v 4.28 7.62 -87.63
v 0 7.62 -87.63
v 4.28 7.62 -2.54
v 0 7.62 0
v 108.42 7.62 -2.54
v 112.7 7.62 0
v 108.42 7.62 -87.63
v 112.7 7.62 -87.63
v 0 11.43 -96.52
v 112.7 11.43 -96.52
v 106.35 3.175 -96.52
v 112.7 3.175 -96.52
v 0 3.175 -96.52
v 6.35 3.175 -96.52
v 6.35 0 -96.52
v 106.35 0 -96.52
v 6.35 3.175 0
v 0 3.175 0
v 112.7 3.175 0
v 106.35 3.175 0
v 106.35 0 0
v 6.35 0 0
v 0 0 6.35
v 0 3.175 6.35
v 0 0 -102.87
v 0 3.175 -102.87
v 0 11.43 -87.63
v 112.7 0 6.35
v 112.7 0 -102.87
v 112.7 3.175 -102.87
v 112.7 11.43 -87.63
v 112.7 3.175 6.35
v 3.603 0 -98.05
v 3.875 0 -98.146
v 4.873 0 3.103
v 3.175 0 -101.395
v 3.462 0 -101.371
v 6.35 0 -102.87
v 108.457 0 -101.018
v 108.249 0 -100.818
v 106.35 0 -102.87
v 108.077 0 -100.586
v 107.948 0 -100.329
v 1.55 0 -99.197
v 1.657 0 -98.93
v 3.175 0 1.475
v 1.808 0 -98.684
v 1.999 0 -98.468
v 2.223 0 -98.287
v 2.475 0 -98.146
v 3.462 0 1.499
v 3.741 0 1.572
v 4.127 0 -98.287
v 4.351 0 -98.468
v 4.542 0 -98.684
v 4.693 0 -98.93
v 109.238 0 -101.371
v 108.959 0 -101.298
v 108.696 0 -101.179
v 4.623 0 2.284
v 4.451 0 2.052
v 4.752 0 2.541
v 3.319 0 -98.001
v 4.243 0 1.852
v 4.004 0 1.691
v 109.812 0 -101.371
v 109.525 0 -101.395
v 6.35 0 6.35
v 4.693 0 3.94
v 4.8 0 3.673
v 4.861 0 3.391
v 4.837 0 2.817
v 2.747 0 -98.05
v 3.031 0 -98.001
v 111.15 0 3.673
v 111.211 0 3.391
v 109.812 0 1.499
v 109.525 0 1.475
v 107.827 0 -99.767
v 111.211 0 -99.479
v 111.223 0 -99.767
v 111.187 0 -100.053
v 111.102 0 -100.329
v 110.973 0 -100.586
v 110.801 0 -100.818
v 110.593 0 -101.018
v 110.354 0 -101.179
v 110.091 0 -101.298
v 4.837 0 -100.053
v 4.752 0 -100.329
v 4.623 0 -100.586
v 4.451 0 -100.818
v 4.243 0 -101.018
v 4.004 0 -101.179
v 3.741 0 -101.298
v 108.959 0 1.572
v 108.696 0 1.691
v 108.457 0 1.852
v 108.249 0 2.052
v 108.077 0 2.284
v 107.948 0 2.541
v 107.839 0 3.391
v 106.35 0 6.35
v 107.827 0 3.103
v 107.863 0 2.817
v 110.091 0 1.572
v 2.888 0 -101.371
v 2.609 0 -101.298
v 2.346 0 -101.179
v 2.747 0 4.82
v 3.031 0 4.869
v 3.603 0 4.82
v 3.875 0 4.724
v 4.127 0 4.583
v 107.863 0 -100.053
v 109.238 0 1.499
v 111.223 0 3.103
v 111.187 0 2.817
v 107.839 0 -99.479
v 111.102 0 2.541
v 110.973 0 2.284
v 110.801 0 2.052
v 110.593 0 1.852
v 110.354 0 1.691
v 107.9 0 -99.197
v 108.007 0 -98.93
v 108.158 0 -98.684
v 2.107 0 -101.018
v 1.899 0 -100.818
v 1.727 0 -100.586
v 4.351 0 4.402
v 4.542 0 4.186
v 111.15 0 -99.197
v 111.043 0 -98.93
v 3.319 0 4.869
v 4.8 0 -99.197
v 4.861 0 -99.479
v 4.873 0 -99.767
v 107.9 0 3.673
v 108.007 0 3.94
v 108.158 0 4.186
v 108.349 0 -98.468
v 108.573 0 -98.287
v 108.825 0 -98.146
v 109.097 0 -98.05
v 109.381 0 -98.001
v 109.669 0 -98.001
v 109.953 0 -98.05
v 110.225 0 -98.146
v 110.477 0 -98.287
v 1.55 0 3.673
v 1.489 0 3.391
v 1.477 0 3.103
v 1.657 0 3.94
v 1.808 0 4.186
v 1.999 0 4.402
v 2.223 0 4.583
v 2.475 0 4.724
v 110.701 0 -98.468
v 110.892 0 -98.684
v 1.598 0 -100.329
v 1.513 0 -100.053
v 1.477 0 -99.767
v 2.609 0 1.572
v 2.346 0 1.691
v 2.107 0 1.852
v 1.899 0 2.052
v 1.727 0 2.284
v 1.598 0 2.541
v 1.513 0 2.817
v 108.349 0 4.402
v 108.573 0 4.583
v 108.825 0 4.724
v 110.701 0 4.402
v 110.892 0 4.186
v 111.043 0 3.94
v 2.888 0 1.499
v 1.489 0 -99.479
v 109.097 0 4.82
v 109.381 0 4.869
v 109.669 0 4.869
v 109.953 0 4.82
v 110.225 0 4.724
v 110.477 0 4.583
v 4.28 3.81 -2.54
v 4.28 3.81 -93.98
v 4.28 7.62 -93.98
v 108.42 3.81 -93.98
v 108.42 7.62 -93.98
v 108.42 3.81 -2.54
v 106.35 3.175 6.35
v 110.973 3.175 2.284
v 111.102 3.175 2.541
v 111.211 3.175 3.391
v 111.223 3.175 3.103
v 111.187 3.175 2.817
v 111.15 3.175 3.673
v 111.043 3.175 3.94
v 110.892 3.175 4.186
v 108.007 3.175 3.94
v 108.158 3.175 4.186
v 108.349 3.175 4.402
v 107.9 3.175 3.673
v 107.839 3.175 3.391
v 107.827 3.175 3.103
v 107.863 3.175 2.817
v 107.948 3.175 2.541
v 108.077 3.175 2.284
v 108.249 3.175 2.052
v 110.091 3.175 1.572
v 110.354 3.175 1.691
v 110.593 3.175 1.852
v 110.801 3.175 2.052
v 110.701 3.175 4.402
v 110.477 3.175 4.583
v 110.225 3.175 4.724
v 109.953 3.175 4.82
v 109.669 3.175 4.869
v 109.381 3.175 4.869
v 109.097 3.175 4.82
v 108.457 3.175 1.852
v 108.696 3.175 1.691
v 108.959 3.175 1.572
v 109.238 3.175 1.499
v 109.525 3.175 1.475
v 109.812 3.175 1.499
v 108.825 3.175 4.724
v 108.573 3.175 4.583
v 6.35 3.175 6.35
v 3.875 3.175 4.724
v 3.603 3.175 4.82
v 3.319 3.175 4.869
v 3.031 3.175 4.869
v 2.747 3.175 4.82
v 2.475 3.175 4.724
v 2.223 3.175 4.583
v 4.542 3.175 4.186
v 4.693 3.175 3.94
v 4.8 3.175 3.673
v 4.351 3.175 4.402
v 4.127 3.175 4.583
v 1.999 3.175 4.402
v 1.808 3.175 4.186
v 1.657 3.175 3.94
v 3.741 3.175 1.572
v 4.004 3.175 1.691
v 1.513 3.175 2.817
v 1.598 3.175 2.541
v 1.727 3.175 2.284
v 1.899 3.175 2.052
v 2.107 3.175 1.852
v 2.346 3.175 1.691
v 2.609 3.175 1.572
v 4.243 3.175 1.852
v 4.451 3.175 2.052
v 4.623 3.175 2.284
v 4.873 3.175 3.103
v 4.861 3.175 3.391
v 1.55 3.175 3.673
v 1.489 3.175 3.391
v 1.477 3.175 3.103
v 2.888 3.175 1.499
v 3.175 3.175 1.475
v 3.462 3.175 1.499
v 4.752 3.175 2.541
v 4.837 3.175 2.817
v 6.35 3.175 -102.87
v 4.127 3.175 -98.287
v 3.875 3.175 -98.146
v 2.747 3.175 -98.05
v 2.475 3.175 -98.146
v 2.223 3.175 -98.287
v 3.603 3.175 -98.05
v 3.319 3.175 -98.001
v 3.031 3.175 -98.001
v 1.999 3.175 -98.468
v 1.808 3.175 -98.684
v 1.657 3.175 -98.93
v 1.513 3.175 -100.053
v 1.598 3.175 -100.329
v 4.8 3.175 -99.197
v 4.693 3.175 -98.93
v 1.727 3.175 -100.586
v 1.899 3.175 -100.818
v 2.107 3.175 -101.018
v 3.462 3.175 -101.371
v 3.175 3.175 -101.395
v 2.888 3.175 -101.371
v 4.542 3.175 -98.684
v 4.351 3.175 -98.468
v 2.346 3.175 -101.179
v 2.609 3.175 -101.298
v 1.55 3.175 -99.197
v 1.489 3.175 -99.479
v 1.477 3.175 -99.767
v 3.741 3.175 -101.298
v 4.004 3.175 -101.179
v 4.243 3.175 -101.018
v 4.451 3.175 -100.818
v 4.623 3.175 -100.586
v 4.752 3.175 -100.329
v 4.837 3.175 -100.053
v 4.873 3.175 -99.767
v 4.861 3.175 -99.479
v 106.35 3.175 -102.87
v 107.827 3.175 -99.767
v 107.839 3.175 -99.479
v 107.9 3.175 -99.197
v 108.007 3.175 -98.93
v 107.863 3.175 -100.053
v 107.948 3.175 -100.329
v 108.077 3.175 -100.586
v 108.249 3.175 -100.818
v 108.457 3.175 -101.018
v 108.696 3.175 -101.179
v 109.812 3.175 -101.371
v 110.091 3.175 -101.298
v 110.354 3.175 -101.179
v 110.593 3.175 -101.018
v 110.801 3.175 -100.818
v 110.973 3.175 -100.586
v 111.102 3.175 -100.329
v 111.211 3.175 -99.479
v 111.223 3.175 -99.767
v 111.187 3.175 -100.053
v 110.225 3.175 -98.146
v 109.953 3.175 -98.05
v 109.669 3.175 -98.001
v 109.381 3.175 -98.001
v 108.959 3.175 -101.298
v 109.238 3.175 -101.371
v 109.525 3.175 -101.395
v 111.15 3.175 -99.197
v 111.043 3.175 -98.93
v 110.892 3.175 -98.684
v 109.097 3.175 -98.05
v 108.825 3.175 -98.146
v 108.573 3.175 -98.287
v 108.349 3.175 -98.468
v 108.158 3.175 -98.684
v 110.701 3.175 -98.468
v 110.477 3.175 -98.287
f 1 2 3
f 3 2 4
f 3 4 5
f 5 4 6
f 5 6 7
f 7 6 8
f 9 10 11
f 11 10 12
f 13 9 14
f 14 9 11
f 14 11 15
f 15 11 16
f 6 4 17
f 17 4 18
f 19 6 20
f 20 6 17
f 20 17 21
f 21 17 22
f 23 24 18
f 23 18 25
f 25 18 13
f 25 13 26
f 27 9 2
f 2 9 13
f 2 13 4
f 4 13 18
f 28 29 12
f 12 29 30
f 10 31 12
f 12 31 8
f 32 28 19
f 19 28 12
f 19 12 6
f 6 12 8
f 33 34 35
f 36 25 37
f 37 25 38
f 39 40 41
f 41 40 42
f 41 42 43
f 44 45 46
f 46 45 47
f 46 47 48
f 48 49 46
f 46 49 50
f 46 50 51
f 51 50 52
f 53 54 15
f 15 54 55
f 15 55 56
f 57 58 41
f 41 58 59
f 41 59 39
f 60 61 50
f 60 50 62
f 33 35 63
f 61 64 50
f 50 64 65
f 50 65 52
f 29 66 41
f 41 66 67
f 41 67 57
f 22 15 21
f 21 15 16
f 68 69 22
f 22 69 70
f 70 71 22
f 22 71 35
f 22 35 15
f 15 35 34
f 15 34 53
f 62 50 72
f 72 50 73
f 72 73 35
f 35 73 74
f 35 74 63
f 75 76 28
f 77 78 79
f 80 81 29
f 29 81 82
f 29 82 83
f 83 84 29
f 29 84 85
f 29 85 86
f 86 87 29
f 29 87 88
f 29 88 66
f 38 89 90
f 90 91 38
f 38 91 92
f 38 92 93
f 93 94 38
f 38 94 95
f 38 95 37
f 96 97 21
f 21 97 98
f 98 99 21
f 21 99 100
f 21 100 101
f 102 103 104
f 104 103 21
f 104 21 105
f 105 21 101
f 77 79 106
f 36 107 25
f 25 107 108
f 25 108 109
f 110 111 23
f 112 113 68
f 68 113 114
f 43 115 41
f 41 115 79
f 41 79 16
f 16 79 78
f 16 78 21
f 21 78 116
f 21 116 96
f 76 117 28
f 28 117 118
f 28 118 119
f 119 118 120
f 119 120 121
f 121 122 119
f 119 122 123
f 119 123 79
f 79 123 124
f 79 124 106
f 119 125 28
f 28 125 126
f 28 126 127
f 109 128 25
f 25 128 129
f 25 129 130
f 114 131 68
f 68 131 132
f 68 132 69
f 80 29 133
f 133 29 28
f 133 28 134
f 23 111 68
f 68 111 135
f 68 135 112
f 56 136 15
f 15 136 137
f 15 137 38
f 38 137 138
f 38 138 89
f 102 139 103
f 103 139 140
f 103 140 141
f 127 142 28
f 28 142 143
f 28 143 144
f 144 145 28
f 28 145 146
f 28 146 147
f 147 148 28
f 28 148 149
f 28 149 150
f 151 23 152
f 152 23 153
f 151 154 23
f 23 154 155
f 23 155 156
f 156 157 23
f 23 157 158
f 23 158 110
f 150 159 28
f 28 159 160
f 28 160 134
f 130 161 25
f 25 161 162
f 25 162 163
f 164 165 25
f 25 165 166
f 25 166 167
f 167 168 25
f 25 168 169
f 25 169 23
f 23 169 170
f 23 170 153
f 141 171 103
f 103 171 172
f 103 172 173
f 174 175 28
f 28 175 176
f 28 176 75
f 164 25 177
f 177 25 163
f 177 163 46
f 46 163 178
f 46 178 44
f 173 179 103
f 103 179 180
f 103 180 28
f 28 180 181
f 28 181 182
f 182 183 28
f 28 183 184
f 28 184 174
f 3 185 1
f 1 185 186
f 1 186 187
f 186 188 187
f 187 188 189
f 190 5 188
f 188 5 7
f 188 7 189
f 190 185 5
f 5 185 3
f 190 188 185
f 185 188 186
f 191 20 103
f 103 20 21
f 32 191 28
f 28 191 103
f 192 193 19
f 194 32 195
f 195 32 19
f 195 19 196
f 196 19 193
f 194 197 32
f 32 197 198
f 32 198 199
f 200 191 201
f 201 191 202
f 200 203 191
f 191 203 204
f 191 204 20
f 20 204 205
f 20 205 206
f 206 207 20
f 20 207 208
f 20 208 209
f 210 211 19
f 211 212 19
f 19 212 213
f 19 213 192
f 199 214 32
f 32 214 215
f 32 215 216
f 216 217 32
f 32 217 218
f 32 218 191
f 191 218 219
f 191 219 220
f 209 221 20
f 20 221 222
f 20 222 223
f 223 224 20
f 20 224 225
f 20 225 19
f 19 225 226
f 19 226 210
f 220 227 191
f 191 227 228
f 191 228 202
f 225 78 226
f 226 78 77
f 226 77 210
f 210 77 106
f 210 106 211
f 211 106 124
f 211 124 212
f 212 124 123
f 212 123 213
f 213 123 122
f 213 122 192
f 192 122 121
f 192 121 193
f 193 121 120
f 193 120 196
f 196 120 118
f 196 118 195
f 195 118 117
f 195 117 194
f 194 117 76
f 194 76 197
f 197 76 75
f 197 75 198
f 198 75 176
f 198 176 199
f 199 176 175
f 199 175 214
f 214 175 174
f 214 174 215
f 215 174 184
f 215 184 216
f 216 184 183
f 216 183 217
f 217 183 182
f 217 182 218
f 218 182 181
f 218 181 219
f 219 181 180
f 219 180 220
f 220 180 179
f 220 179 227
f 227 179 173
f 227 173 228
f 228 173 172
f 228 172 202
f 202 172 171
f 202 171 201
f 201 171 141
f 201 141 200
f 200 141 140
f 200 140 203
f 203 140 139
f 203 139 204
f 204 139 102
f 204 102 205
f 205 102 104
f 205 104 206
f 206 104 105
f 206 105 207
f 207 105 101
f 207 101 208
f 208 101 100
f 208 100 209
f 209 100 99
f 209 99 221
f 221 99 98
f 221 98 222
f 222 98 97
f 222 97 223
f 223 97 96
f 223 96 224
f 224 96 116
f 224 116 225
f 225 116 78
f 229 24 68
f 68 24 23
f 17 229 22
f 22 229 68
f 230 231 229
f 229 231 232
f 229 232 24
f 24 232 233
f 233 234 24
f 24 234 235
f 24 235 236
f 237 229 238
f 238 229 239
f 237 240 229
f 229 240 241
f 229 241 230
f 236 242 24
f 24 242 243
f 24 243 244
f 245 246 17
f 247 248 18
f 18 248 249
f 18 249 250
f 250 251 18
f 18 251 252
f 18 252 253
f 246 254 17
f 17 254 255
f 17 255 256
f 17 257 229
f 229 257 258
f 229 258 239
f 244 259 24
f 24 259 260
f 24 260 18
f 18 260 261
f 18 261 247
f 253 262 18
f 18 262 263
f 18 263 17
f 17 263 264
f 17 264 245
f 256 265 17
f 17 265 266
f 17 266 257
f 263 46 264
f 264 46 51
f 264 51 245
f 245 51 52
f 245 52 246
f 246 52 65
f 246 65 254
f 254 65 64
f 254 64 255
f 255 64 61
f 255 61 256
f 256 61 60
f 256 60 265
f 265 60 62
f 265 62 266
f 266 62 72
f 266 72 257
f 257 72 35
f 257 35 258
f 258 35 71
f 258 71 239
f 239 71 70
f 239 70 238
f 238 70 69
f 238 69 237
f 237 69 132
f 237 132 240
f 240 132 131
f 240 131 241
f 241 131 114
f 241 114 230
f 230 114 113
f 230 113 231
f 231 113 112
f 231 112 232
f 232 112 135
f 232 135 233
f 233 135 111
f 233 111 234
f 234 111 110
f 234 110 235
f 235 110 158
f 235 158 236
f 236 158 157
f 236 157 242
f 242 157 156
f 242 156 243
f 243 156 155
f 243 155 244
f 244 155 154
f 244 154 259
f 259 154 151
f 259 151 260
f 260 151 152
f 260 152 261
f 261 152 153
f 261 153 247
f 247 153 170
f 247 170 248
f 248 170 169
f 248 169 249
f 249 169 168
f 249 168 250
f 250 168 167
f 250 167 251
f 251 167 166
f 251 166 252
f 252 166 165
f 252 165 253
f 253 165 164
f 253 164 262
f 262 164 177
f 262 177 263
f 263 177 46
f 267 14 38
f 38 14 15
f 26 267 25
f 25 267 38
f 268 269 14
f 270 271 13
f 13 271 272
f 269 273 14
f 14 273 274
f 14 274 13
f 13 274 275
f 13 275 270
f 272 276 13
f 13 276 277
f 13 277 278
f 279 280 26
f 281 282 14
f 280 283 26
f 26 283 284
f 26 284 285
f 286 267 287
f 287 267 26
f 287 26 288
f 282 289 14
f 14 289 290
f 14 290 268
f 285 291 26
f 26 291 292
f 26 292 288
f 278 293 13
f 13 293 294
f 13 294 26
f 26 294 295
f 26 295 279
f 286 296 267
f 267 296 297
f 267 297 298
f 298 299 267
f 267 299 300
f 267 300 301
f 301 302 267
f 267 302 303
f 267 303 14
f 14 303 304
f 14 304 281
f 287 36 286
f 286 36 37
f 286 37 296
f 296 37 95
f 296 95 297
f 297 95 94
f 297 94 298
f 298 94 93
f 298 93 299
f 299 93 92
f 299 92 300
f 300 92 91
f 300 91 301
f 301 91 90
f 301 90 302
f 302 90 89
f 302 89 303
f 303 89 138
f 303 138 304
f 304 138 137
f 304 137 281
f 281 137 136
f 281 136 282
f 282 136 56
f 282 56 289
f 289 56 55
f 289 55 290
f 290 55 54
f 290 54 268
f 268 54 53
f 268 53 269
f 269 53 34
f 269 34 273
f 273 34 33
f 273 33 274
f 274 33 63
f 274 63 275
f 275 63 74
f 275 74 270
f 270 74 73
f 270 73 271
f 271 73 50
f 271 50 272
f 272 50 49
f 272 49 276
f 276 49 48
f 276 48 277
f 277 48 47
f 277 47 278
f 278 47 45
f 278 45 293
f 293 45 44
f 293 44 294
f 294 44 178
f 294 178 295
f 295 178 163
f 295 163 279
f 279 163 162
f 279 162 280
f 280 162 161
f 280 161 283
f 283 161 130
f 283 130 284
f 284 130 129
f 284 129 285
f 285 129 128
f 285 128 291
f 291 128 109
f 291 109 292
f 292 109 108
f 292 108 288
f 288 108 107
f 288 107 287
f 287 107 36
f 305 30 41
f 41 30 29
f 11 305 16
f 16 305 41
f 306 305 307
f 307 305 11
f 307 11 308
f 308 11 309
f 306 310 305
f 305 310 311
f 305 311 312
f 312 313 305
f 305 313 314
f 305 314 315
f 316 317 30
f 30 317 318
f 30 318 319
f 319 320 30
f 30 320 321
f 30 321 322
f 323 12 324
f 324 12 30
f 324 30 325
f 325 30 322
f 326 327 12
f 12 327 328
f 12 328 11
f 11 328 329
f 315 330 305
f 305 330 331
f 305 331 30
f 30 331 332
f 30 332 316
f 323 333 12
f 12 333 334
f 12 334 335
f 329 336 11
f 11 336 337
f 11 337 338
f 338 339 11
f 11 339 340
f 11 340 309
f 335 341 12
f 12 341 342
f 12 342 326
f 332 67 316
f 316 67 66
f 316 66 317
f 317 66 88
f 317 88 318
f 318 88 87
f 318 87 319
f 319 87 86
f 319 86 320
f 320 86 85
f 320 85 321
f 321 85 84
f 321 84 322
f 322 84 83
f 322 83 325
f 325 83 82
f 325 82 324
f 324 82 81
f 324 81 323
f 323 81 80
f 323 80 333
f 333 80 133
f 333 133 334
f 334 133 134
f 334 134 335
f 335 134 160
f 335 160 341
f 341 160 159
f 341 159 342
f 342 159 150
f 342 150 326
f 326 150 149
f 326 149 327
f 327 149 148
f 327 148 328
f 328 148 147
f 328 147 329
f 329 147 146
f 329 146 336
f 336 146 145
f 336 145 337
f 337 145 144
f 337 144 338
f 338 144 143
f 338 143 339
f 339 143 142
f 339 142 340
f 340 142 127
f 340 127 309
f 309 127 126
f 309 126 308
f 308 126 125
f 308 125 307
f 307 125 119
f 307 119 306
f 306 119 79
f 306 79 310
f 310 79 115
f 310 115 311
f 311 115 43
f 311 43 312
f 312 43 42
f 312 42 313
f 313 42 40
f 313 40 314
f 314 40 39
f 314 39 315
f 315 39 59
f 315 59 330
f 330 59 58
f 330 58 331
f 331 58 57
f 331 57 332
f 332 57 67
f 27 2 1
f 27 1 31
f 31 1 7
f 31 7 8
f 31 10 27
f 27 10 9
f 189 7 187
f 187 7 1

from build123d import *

# Parameters (mm, degrees)
SKETCH1_W           = 112.699999898
SKETCH1_H           = 96.52
BOSS_EXTRUDE1_DEPTH = 7.62
SKETCH2_W           = 104.14
SKETCH2_H           = 91.44
CUT_EXTRUDE1_DEPTH  = 3.81
SKETCH3_W           = 6.35
SKETCH3_H           = 6.35
SKETCH3_R           = 1.7
BOSS_EXTRUDE2_DEPTH = 3.175
SKETCH4_W           = 112.699999898
SKETCH4_H           = 8.89
BOSS_EXTRUDE3_DEPTH = 3.81


with BuildPart() as part:
    # Sketch1 → Boss-Extrude1 (new body)
    with BuildSketch(Plane(origin=(0, 0, 0), x_dir=(1, 0, 0), z_dir=(0, 1, 0))):
        with Locations((56.349999949, 48.26)):
            Rectangle(SKETCH1_W, SKETCH1_H)
    extrude(amount=BOSS_EXTRUDE1_DEPTH)

    # Sketch2 → Cut-Extrude1 (cut)
    with BuildSketch(Plane(origin=(0, 7.62, 0), x_dir=(1, 0, 0), z_dir=(0, 1, 0))):
        with Locations((56.349999949, 48.26)):
            Rectangle(SKETCH2_W, SKETCH2_H)
    extrude(amount=-CUT_EXTRUDE1_DEPTH, mode=Mode.SUBTRACT)

    # Sketch3 → Boss-Extrude2 (add)
    # profile 1 of 4: a face of its own
    with BuildSketch(Plane.XZ):
        with Locations((109.524999898, 3.175)):
            Rectangle(SKETCH3_W, SKETCH3_H)
        with Locations(Location((109.524999898, 3.175, 0), (0, 0, 270))):
            Circle(SKETCH3_R, mode=Mode.SUBTRACT)
    # profile 2 of 4: a face of its own
    with BuildSketch(Plane.XZ):
        with Locations((3.175, 3.175)):
            Rectangle(SKETCH3_W, SKETCH3_H)
        with Locations(Location((3.175, 3.175, 0), (0, 0, 270))):
            Circle(SKETCH3_R, mode=Mode.SUBTRACT)
    # profile 3 of 4: a face of its own
    with BuildSketch(Plane.XZ):
        with Locations((3.175, -99.695)):
            Rectangle(SKETCH3_W, SKETCH3_H)
        with Locations(Location((3.175, -99.695, 0), (0, 0, 270))):
            Circle(SKETCH3_R, mode=Mode.SUBTRACT)
    # profile 4 of 4: a face of its own
    with BuildSketch(Plane.XZ):
        with Locations((109.524999898, -99.695)):
            Rectangle(SKETCH3_W, SKETCH3_H)
        with Locations(Location((109.524999898, -99.695, 0), (0, 0, 270))):
            Circle(SKETCH3_R, mode=Mode.SUBTRACT)
    extrude(amount=-BOSS_EXTRUDE2_DEPTH)

    # Sketch4 → Boss-Extrude3 (add)
    with BuildSketch(Plane(origin=(0, 7.62, 0), x_dir=(1, 0, 0), z_dir=(0, 1, 0))):
        with Locations((56.349999949, 92.075)):
            Rectangle(SKETCH4_W, SKETCH4_H)
    extrude(amount=BOSS_EXTRUDE3_DEPTH)


solid = part.part
